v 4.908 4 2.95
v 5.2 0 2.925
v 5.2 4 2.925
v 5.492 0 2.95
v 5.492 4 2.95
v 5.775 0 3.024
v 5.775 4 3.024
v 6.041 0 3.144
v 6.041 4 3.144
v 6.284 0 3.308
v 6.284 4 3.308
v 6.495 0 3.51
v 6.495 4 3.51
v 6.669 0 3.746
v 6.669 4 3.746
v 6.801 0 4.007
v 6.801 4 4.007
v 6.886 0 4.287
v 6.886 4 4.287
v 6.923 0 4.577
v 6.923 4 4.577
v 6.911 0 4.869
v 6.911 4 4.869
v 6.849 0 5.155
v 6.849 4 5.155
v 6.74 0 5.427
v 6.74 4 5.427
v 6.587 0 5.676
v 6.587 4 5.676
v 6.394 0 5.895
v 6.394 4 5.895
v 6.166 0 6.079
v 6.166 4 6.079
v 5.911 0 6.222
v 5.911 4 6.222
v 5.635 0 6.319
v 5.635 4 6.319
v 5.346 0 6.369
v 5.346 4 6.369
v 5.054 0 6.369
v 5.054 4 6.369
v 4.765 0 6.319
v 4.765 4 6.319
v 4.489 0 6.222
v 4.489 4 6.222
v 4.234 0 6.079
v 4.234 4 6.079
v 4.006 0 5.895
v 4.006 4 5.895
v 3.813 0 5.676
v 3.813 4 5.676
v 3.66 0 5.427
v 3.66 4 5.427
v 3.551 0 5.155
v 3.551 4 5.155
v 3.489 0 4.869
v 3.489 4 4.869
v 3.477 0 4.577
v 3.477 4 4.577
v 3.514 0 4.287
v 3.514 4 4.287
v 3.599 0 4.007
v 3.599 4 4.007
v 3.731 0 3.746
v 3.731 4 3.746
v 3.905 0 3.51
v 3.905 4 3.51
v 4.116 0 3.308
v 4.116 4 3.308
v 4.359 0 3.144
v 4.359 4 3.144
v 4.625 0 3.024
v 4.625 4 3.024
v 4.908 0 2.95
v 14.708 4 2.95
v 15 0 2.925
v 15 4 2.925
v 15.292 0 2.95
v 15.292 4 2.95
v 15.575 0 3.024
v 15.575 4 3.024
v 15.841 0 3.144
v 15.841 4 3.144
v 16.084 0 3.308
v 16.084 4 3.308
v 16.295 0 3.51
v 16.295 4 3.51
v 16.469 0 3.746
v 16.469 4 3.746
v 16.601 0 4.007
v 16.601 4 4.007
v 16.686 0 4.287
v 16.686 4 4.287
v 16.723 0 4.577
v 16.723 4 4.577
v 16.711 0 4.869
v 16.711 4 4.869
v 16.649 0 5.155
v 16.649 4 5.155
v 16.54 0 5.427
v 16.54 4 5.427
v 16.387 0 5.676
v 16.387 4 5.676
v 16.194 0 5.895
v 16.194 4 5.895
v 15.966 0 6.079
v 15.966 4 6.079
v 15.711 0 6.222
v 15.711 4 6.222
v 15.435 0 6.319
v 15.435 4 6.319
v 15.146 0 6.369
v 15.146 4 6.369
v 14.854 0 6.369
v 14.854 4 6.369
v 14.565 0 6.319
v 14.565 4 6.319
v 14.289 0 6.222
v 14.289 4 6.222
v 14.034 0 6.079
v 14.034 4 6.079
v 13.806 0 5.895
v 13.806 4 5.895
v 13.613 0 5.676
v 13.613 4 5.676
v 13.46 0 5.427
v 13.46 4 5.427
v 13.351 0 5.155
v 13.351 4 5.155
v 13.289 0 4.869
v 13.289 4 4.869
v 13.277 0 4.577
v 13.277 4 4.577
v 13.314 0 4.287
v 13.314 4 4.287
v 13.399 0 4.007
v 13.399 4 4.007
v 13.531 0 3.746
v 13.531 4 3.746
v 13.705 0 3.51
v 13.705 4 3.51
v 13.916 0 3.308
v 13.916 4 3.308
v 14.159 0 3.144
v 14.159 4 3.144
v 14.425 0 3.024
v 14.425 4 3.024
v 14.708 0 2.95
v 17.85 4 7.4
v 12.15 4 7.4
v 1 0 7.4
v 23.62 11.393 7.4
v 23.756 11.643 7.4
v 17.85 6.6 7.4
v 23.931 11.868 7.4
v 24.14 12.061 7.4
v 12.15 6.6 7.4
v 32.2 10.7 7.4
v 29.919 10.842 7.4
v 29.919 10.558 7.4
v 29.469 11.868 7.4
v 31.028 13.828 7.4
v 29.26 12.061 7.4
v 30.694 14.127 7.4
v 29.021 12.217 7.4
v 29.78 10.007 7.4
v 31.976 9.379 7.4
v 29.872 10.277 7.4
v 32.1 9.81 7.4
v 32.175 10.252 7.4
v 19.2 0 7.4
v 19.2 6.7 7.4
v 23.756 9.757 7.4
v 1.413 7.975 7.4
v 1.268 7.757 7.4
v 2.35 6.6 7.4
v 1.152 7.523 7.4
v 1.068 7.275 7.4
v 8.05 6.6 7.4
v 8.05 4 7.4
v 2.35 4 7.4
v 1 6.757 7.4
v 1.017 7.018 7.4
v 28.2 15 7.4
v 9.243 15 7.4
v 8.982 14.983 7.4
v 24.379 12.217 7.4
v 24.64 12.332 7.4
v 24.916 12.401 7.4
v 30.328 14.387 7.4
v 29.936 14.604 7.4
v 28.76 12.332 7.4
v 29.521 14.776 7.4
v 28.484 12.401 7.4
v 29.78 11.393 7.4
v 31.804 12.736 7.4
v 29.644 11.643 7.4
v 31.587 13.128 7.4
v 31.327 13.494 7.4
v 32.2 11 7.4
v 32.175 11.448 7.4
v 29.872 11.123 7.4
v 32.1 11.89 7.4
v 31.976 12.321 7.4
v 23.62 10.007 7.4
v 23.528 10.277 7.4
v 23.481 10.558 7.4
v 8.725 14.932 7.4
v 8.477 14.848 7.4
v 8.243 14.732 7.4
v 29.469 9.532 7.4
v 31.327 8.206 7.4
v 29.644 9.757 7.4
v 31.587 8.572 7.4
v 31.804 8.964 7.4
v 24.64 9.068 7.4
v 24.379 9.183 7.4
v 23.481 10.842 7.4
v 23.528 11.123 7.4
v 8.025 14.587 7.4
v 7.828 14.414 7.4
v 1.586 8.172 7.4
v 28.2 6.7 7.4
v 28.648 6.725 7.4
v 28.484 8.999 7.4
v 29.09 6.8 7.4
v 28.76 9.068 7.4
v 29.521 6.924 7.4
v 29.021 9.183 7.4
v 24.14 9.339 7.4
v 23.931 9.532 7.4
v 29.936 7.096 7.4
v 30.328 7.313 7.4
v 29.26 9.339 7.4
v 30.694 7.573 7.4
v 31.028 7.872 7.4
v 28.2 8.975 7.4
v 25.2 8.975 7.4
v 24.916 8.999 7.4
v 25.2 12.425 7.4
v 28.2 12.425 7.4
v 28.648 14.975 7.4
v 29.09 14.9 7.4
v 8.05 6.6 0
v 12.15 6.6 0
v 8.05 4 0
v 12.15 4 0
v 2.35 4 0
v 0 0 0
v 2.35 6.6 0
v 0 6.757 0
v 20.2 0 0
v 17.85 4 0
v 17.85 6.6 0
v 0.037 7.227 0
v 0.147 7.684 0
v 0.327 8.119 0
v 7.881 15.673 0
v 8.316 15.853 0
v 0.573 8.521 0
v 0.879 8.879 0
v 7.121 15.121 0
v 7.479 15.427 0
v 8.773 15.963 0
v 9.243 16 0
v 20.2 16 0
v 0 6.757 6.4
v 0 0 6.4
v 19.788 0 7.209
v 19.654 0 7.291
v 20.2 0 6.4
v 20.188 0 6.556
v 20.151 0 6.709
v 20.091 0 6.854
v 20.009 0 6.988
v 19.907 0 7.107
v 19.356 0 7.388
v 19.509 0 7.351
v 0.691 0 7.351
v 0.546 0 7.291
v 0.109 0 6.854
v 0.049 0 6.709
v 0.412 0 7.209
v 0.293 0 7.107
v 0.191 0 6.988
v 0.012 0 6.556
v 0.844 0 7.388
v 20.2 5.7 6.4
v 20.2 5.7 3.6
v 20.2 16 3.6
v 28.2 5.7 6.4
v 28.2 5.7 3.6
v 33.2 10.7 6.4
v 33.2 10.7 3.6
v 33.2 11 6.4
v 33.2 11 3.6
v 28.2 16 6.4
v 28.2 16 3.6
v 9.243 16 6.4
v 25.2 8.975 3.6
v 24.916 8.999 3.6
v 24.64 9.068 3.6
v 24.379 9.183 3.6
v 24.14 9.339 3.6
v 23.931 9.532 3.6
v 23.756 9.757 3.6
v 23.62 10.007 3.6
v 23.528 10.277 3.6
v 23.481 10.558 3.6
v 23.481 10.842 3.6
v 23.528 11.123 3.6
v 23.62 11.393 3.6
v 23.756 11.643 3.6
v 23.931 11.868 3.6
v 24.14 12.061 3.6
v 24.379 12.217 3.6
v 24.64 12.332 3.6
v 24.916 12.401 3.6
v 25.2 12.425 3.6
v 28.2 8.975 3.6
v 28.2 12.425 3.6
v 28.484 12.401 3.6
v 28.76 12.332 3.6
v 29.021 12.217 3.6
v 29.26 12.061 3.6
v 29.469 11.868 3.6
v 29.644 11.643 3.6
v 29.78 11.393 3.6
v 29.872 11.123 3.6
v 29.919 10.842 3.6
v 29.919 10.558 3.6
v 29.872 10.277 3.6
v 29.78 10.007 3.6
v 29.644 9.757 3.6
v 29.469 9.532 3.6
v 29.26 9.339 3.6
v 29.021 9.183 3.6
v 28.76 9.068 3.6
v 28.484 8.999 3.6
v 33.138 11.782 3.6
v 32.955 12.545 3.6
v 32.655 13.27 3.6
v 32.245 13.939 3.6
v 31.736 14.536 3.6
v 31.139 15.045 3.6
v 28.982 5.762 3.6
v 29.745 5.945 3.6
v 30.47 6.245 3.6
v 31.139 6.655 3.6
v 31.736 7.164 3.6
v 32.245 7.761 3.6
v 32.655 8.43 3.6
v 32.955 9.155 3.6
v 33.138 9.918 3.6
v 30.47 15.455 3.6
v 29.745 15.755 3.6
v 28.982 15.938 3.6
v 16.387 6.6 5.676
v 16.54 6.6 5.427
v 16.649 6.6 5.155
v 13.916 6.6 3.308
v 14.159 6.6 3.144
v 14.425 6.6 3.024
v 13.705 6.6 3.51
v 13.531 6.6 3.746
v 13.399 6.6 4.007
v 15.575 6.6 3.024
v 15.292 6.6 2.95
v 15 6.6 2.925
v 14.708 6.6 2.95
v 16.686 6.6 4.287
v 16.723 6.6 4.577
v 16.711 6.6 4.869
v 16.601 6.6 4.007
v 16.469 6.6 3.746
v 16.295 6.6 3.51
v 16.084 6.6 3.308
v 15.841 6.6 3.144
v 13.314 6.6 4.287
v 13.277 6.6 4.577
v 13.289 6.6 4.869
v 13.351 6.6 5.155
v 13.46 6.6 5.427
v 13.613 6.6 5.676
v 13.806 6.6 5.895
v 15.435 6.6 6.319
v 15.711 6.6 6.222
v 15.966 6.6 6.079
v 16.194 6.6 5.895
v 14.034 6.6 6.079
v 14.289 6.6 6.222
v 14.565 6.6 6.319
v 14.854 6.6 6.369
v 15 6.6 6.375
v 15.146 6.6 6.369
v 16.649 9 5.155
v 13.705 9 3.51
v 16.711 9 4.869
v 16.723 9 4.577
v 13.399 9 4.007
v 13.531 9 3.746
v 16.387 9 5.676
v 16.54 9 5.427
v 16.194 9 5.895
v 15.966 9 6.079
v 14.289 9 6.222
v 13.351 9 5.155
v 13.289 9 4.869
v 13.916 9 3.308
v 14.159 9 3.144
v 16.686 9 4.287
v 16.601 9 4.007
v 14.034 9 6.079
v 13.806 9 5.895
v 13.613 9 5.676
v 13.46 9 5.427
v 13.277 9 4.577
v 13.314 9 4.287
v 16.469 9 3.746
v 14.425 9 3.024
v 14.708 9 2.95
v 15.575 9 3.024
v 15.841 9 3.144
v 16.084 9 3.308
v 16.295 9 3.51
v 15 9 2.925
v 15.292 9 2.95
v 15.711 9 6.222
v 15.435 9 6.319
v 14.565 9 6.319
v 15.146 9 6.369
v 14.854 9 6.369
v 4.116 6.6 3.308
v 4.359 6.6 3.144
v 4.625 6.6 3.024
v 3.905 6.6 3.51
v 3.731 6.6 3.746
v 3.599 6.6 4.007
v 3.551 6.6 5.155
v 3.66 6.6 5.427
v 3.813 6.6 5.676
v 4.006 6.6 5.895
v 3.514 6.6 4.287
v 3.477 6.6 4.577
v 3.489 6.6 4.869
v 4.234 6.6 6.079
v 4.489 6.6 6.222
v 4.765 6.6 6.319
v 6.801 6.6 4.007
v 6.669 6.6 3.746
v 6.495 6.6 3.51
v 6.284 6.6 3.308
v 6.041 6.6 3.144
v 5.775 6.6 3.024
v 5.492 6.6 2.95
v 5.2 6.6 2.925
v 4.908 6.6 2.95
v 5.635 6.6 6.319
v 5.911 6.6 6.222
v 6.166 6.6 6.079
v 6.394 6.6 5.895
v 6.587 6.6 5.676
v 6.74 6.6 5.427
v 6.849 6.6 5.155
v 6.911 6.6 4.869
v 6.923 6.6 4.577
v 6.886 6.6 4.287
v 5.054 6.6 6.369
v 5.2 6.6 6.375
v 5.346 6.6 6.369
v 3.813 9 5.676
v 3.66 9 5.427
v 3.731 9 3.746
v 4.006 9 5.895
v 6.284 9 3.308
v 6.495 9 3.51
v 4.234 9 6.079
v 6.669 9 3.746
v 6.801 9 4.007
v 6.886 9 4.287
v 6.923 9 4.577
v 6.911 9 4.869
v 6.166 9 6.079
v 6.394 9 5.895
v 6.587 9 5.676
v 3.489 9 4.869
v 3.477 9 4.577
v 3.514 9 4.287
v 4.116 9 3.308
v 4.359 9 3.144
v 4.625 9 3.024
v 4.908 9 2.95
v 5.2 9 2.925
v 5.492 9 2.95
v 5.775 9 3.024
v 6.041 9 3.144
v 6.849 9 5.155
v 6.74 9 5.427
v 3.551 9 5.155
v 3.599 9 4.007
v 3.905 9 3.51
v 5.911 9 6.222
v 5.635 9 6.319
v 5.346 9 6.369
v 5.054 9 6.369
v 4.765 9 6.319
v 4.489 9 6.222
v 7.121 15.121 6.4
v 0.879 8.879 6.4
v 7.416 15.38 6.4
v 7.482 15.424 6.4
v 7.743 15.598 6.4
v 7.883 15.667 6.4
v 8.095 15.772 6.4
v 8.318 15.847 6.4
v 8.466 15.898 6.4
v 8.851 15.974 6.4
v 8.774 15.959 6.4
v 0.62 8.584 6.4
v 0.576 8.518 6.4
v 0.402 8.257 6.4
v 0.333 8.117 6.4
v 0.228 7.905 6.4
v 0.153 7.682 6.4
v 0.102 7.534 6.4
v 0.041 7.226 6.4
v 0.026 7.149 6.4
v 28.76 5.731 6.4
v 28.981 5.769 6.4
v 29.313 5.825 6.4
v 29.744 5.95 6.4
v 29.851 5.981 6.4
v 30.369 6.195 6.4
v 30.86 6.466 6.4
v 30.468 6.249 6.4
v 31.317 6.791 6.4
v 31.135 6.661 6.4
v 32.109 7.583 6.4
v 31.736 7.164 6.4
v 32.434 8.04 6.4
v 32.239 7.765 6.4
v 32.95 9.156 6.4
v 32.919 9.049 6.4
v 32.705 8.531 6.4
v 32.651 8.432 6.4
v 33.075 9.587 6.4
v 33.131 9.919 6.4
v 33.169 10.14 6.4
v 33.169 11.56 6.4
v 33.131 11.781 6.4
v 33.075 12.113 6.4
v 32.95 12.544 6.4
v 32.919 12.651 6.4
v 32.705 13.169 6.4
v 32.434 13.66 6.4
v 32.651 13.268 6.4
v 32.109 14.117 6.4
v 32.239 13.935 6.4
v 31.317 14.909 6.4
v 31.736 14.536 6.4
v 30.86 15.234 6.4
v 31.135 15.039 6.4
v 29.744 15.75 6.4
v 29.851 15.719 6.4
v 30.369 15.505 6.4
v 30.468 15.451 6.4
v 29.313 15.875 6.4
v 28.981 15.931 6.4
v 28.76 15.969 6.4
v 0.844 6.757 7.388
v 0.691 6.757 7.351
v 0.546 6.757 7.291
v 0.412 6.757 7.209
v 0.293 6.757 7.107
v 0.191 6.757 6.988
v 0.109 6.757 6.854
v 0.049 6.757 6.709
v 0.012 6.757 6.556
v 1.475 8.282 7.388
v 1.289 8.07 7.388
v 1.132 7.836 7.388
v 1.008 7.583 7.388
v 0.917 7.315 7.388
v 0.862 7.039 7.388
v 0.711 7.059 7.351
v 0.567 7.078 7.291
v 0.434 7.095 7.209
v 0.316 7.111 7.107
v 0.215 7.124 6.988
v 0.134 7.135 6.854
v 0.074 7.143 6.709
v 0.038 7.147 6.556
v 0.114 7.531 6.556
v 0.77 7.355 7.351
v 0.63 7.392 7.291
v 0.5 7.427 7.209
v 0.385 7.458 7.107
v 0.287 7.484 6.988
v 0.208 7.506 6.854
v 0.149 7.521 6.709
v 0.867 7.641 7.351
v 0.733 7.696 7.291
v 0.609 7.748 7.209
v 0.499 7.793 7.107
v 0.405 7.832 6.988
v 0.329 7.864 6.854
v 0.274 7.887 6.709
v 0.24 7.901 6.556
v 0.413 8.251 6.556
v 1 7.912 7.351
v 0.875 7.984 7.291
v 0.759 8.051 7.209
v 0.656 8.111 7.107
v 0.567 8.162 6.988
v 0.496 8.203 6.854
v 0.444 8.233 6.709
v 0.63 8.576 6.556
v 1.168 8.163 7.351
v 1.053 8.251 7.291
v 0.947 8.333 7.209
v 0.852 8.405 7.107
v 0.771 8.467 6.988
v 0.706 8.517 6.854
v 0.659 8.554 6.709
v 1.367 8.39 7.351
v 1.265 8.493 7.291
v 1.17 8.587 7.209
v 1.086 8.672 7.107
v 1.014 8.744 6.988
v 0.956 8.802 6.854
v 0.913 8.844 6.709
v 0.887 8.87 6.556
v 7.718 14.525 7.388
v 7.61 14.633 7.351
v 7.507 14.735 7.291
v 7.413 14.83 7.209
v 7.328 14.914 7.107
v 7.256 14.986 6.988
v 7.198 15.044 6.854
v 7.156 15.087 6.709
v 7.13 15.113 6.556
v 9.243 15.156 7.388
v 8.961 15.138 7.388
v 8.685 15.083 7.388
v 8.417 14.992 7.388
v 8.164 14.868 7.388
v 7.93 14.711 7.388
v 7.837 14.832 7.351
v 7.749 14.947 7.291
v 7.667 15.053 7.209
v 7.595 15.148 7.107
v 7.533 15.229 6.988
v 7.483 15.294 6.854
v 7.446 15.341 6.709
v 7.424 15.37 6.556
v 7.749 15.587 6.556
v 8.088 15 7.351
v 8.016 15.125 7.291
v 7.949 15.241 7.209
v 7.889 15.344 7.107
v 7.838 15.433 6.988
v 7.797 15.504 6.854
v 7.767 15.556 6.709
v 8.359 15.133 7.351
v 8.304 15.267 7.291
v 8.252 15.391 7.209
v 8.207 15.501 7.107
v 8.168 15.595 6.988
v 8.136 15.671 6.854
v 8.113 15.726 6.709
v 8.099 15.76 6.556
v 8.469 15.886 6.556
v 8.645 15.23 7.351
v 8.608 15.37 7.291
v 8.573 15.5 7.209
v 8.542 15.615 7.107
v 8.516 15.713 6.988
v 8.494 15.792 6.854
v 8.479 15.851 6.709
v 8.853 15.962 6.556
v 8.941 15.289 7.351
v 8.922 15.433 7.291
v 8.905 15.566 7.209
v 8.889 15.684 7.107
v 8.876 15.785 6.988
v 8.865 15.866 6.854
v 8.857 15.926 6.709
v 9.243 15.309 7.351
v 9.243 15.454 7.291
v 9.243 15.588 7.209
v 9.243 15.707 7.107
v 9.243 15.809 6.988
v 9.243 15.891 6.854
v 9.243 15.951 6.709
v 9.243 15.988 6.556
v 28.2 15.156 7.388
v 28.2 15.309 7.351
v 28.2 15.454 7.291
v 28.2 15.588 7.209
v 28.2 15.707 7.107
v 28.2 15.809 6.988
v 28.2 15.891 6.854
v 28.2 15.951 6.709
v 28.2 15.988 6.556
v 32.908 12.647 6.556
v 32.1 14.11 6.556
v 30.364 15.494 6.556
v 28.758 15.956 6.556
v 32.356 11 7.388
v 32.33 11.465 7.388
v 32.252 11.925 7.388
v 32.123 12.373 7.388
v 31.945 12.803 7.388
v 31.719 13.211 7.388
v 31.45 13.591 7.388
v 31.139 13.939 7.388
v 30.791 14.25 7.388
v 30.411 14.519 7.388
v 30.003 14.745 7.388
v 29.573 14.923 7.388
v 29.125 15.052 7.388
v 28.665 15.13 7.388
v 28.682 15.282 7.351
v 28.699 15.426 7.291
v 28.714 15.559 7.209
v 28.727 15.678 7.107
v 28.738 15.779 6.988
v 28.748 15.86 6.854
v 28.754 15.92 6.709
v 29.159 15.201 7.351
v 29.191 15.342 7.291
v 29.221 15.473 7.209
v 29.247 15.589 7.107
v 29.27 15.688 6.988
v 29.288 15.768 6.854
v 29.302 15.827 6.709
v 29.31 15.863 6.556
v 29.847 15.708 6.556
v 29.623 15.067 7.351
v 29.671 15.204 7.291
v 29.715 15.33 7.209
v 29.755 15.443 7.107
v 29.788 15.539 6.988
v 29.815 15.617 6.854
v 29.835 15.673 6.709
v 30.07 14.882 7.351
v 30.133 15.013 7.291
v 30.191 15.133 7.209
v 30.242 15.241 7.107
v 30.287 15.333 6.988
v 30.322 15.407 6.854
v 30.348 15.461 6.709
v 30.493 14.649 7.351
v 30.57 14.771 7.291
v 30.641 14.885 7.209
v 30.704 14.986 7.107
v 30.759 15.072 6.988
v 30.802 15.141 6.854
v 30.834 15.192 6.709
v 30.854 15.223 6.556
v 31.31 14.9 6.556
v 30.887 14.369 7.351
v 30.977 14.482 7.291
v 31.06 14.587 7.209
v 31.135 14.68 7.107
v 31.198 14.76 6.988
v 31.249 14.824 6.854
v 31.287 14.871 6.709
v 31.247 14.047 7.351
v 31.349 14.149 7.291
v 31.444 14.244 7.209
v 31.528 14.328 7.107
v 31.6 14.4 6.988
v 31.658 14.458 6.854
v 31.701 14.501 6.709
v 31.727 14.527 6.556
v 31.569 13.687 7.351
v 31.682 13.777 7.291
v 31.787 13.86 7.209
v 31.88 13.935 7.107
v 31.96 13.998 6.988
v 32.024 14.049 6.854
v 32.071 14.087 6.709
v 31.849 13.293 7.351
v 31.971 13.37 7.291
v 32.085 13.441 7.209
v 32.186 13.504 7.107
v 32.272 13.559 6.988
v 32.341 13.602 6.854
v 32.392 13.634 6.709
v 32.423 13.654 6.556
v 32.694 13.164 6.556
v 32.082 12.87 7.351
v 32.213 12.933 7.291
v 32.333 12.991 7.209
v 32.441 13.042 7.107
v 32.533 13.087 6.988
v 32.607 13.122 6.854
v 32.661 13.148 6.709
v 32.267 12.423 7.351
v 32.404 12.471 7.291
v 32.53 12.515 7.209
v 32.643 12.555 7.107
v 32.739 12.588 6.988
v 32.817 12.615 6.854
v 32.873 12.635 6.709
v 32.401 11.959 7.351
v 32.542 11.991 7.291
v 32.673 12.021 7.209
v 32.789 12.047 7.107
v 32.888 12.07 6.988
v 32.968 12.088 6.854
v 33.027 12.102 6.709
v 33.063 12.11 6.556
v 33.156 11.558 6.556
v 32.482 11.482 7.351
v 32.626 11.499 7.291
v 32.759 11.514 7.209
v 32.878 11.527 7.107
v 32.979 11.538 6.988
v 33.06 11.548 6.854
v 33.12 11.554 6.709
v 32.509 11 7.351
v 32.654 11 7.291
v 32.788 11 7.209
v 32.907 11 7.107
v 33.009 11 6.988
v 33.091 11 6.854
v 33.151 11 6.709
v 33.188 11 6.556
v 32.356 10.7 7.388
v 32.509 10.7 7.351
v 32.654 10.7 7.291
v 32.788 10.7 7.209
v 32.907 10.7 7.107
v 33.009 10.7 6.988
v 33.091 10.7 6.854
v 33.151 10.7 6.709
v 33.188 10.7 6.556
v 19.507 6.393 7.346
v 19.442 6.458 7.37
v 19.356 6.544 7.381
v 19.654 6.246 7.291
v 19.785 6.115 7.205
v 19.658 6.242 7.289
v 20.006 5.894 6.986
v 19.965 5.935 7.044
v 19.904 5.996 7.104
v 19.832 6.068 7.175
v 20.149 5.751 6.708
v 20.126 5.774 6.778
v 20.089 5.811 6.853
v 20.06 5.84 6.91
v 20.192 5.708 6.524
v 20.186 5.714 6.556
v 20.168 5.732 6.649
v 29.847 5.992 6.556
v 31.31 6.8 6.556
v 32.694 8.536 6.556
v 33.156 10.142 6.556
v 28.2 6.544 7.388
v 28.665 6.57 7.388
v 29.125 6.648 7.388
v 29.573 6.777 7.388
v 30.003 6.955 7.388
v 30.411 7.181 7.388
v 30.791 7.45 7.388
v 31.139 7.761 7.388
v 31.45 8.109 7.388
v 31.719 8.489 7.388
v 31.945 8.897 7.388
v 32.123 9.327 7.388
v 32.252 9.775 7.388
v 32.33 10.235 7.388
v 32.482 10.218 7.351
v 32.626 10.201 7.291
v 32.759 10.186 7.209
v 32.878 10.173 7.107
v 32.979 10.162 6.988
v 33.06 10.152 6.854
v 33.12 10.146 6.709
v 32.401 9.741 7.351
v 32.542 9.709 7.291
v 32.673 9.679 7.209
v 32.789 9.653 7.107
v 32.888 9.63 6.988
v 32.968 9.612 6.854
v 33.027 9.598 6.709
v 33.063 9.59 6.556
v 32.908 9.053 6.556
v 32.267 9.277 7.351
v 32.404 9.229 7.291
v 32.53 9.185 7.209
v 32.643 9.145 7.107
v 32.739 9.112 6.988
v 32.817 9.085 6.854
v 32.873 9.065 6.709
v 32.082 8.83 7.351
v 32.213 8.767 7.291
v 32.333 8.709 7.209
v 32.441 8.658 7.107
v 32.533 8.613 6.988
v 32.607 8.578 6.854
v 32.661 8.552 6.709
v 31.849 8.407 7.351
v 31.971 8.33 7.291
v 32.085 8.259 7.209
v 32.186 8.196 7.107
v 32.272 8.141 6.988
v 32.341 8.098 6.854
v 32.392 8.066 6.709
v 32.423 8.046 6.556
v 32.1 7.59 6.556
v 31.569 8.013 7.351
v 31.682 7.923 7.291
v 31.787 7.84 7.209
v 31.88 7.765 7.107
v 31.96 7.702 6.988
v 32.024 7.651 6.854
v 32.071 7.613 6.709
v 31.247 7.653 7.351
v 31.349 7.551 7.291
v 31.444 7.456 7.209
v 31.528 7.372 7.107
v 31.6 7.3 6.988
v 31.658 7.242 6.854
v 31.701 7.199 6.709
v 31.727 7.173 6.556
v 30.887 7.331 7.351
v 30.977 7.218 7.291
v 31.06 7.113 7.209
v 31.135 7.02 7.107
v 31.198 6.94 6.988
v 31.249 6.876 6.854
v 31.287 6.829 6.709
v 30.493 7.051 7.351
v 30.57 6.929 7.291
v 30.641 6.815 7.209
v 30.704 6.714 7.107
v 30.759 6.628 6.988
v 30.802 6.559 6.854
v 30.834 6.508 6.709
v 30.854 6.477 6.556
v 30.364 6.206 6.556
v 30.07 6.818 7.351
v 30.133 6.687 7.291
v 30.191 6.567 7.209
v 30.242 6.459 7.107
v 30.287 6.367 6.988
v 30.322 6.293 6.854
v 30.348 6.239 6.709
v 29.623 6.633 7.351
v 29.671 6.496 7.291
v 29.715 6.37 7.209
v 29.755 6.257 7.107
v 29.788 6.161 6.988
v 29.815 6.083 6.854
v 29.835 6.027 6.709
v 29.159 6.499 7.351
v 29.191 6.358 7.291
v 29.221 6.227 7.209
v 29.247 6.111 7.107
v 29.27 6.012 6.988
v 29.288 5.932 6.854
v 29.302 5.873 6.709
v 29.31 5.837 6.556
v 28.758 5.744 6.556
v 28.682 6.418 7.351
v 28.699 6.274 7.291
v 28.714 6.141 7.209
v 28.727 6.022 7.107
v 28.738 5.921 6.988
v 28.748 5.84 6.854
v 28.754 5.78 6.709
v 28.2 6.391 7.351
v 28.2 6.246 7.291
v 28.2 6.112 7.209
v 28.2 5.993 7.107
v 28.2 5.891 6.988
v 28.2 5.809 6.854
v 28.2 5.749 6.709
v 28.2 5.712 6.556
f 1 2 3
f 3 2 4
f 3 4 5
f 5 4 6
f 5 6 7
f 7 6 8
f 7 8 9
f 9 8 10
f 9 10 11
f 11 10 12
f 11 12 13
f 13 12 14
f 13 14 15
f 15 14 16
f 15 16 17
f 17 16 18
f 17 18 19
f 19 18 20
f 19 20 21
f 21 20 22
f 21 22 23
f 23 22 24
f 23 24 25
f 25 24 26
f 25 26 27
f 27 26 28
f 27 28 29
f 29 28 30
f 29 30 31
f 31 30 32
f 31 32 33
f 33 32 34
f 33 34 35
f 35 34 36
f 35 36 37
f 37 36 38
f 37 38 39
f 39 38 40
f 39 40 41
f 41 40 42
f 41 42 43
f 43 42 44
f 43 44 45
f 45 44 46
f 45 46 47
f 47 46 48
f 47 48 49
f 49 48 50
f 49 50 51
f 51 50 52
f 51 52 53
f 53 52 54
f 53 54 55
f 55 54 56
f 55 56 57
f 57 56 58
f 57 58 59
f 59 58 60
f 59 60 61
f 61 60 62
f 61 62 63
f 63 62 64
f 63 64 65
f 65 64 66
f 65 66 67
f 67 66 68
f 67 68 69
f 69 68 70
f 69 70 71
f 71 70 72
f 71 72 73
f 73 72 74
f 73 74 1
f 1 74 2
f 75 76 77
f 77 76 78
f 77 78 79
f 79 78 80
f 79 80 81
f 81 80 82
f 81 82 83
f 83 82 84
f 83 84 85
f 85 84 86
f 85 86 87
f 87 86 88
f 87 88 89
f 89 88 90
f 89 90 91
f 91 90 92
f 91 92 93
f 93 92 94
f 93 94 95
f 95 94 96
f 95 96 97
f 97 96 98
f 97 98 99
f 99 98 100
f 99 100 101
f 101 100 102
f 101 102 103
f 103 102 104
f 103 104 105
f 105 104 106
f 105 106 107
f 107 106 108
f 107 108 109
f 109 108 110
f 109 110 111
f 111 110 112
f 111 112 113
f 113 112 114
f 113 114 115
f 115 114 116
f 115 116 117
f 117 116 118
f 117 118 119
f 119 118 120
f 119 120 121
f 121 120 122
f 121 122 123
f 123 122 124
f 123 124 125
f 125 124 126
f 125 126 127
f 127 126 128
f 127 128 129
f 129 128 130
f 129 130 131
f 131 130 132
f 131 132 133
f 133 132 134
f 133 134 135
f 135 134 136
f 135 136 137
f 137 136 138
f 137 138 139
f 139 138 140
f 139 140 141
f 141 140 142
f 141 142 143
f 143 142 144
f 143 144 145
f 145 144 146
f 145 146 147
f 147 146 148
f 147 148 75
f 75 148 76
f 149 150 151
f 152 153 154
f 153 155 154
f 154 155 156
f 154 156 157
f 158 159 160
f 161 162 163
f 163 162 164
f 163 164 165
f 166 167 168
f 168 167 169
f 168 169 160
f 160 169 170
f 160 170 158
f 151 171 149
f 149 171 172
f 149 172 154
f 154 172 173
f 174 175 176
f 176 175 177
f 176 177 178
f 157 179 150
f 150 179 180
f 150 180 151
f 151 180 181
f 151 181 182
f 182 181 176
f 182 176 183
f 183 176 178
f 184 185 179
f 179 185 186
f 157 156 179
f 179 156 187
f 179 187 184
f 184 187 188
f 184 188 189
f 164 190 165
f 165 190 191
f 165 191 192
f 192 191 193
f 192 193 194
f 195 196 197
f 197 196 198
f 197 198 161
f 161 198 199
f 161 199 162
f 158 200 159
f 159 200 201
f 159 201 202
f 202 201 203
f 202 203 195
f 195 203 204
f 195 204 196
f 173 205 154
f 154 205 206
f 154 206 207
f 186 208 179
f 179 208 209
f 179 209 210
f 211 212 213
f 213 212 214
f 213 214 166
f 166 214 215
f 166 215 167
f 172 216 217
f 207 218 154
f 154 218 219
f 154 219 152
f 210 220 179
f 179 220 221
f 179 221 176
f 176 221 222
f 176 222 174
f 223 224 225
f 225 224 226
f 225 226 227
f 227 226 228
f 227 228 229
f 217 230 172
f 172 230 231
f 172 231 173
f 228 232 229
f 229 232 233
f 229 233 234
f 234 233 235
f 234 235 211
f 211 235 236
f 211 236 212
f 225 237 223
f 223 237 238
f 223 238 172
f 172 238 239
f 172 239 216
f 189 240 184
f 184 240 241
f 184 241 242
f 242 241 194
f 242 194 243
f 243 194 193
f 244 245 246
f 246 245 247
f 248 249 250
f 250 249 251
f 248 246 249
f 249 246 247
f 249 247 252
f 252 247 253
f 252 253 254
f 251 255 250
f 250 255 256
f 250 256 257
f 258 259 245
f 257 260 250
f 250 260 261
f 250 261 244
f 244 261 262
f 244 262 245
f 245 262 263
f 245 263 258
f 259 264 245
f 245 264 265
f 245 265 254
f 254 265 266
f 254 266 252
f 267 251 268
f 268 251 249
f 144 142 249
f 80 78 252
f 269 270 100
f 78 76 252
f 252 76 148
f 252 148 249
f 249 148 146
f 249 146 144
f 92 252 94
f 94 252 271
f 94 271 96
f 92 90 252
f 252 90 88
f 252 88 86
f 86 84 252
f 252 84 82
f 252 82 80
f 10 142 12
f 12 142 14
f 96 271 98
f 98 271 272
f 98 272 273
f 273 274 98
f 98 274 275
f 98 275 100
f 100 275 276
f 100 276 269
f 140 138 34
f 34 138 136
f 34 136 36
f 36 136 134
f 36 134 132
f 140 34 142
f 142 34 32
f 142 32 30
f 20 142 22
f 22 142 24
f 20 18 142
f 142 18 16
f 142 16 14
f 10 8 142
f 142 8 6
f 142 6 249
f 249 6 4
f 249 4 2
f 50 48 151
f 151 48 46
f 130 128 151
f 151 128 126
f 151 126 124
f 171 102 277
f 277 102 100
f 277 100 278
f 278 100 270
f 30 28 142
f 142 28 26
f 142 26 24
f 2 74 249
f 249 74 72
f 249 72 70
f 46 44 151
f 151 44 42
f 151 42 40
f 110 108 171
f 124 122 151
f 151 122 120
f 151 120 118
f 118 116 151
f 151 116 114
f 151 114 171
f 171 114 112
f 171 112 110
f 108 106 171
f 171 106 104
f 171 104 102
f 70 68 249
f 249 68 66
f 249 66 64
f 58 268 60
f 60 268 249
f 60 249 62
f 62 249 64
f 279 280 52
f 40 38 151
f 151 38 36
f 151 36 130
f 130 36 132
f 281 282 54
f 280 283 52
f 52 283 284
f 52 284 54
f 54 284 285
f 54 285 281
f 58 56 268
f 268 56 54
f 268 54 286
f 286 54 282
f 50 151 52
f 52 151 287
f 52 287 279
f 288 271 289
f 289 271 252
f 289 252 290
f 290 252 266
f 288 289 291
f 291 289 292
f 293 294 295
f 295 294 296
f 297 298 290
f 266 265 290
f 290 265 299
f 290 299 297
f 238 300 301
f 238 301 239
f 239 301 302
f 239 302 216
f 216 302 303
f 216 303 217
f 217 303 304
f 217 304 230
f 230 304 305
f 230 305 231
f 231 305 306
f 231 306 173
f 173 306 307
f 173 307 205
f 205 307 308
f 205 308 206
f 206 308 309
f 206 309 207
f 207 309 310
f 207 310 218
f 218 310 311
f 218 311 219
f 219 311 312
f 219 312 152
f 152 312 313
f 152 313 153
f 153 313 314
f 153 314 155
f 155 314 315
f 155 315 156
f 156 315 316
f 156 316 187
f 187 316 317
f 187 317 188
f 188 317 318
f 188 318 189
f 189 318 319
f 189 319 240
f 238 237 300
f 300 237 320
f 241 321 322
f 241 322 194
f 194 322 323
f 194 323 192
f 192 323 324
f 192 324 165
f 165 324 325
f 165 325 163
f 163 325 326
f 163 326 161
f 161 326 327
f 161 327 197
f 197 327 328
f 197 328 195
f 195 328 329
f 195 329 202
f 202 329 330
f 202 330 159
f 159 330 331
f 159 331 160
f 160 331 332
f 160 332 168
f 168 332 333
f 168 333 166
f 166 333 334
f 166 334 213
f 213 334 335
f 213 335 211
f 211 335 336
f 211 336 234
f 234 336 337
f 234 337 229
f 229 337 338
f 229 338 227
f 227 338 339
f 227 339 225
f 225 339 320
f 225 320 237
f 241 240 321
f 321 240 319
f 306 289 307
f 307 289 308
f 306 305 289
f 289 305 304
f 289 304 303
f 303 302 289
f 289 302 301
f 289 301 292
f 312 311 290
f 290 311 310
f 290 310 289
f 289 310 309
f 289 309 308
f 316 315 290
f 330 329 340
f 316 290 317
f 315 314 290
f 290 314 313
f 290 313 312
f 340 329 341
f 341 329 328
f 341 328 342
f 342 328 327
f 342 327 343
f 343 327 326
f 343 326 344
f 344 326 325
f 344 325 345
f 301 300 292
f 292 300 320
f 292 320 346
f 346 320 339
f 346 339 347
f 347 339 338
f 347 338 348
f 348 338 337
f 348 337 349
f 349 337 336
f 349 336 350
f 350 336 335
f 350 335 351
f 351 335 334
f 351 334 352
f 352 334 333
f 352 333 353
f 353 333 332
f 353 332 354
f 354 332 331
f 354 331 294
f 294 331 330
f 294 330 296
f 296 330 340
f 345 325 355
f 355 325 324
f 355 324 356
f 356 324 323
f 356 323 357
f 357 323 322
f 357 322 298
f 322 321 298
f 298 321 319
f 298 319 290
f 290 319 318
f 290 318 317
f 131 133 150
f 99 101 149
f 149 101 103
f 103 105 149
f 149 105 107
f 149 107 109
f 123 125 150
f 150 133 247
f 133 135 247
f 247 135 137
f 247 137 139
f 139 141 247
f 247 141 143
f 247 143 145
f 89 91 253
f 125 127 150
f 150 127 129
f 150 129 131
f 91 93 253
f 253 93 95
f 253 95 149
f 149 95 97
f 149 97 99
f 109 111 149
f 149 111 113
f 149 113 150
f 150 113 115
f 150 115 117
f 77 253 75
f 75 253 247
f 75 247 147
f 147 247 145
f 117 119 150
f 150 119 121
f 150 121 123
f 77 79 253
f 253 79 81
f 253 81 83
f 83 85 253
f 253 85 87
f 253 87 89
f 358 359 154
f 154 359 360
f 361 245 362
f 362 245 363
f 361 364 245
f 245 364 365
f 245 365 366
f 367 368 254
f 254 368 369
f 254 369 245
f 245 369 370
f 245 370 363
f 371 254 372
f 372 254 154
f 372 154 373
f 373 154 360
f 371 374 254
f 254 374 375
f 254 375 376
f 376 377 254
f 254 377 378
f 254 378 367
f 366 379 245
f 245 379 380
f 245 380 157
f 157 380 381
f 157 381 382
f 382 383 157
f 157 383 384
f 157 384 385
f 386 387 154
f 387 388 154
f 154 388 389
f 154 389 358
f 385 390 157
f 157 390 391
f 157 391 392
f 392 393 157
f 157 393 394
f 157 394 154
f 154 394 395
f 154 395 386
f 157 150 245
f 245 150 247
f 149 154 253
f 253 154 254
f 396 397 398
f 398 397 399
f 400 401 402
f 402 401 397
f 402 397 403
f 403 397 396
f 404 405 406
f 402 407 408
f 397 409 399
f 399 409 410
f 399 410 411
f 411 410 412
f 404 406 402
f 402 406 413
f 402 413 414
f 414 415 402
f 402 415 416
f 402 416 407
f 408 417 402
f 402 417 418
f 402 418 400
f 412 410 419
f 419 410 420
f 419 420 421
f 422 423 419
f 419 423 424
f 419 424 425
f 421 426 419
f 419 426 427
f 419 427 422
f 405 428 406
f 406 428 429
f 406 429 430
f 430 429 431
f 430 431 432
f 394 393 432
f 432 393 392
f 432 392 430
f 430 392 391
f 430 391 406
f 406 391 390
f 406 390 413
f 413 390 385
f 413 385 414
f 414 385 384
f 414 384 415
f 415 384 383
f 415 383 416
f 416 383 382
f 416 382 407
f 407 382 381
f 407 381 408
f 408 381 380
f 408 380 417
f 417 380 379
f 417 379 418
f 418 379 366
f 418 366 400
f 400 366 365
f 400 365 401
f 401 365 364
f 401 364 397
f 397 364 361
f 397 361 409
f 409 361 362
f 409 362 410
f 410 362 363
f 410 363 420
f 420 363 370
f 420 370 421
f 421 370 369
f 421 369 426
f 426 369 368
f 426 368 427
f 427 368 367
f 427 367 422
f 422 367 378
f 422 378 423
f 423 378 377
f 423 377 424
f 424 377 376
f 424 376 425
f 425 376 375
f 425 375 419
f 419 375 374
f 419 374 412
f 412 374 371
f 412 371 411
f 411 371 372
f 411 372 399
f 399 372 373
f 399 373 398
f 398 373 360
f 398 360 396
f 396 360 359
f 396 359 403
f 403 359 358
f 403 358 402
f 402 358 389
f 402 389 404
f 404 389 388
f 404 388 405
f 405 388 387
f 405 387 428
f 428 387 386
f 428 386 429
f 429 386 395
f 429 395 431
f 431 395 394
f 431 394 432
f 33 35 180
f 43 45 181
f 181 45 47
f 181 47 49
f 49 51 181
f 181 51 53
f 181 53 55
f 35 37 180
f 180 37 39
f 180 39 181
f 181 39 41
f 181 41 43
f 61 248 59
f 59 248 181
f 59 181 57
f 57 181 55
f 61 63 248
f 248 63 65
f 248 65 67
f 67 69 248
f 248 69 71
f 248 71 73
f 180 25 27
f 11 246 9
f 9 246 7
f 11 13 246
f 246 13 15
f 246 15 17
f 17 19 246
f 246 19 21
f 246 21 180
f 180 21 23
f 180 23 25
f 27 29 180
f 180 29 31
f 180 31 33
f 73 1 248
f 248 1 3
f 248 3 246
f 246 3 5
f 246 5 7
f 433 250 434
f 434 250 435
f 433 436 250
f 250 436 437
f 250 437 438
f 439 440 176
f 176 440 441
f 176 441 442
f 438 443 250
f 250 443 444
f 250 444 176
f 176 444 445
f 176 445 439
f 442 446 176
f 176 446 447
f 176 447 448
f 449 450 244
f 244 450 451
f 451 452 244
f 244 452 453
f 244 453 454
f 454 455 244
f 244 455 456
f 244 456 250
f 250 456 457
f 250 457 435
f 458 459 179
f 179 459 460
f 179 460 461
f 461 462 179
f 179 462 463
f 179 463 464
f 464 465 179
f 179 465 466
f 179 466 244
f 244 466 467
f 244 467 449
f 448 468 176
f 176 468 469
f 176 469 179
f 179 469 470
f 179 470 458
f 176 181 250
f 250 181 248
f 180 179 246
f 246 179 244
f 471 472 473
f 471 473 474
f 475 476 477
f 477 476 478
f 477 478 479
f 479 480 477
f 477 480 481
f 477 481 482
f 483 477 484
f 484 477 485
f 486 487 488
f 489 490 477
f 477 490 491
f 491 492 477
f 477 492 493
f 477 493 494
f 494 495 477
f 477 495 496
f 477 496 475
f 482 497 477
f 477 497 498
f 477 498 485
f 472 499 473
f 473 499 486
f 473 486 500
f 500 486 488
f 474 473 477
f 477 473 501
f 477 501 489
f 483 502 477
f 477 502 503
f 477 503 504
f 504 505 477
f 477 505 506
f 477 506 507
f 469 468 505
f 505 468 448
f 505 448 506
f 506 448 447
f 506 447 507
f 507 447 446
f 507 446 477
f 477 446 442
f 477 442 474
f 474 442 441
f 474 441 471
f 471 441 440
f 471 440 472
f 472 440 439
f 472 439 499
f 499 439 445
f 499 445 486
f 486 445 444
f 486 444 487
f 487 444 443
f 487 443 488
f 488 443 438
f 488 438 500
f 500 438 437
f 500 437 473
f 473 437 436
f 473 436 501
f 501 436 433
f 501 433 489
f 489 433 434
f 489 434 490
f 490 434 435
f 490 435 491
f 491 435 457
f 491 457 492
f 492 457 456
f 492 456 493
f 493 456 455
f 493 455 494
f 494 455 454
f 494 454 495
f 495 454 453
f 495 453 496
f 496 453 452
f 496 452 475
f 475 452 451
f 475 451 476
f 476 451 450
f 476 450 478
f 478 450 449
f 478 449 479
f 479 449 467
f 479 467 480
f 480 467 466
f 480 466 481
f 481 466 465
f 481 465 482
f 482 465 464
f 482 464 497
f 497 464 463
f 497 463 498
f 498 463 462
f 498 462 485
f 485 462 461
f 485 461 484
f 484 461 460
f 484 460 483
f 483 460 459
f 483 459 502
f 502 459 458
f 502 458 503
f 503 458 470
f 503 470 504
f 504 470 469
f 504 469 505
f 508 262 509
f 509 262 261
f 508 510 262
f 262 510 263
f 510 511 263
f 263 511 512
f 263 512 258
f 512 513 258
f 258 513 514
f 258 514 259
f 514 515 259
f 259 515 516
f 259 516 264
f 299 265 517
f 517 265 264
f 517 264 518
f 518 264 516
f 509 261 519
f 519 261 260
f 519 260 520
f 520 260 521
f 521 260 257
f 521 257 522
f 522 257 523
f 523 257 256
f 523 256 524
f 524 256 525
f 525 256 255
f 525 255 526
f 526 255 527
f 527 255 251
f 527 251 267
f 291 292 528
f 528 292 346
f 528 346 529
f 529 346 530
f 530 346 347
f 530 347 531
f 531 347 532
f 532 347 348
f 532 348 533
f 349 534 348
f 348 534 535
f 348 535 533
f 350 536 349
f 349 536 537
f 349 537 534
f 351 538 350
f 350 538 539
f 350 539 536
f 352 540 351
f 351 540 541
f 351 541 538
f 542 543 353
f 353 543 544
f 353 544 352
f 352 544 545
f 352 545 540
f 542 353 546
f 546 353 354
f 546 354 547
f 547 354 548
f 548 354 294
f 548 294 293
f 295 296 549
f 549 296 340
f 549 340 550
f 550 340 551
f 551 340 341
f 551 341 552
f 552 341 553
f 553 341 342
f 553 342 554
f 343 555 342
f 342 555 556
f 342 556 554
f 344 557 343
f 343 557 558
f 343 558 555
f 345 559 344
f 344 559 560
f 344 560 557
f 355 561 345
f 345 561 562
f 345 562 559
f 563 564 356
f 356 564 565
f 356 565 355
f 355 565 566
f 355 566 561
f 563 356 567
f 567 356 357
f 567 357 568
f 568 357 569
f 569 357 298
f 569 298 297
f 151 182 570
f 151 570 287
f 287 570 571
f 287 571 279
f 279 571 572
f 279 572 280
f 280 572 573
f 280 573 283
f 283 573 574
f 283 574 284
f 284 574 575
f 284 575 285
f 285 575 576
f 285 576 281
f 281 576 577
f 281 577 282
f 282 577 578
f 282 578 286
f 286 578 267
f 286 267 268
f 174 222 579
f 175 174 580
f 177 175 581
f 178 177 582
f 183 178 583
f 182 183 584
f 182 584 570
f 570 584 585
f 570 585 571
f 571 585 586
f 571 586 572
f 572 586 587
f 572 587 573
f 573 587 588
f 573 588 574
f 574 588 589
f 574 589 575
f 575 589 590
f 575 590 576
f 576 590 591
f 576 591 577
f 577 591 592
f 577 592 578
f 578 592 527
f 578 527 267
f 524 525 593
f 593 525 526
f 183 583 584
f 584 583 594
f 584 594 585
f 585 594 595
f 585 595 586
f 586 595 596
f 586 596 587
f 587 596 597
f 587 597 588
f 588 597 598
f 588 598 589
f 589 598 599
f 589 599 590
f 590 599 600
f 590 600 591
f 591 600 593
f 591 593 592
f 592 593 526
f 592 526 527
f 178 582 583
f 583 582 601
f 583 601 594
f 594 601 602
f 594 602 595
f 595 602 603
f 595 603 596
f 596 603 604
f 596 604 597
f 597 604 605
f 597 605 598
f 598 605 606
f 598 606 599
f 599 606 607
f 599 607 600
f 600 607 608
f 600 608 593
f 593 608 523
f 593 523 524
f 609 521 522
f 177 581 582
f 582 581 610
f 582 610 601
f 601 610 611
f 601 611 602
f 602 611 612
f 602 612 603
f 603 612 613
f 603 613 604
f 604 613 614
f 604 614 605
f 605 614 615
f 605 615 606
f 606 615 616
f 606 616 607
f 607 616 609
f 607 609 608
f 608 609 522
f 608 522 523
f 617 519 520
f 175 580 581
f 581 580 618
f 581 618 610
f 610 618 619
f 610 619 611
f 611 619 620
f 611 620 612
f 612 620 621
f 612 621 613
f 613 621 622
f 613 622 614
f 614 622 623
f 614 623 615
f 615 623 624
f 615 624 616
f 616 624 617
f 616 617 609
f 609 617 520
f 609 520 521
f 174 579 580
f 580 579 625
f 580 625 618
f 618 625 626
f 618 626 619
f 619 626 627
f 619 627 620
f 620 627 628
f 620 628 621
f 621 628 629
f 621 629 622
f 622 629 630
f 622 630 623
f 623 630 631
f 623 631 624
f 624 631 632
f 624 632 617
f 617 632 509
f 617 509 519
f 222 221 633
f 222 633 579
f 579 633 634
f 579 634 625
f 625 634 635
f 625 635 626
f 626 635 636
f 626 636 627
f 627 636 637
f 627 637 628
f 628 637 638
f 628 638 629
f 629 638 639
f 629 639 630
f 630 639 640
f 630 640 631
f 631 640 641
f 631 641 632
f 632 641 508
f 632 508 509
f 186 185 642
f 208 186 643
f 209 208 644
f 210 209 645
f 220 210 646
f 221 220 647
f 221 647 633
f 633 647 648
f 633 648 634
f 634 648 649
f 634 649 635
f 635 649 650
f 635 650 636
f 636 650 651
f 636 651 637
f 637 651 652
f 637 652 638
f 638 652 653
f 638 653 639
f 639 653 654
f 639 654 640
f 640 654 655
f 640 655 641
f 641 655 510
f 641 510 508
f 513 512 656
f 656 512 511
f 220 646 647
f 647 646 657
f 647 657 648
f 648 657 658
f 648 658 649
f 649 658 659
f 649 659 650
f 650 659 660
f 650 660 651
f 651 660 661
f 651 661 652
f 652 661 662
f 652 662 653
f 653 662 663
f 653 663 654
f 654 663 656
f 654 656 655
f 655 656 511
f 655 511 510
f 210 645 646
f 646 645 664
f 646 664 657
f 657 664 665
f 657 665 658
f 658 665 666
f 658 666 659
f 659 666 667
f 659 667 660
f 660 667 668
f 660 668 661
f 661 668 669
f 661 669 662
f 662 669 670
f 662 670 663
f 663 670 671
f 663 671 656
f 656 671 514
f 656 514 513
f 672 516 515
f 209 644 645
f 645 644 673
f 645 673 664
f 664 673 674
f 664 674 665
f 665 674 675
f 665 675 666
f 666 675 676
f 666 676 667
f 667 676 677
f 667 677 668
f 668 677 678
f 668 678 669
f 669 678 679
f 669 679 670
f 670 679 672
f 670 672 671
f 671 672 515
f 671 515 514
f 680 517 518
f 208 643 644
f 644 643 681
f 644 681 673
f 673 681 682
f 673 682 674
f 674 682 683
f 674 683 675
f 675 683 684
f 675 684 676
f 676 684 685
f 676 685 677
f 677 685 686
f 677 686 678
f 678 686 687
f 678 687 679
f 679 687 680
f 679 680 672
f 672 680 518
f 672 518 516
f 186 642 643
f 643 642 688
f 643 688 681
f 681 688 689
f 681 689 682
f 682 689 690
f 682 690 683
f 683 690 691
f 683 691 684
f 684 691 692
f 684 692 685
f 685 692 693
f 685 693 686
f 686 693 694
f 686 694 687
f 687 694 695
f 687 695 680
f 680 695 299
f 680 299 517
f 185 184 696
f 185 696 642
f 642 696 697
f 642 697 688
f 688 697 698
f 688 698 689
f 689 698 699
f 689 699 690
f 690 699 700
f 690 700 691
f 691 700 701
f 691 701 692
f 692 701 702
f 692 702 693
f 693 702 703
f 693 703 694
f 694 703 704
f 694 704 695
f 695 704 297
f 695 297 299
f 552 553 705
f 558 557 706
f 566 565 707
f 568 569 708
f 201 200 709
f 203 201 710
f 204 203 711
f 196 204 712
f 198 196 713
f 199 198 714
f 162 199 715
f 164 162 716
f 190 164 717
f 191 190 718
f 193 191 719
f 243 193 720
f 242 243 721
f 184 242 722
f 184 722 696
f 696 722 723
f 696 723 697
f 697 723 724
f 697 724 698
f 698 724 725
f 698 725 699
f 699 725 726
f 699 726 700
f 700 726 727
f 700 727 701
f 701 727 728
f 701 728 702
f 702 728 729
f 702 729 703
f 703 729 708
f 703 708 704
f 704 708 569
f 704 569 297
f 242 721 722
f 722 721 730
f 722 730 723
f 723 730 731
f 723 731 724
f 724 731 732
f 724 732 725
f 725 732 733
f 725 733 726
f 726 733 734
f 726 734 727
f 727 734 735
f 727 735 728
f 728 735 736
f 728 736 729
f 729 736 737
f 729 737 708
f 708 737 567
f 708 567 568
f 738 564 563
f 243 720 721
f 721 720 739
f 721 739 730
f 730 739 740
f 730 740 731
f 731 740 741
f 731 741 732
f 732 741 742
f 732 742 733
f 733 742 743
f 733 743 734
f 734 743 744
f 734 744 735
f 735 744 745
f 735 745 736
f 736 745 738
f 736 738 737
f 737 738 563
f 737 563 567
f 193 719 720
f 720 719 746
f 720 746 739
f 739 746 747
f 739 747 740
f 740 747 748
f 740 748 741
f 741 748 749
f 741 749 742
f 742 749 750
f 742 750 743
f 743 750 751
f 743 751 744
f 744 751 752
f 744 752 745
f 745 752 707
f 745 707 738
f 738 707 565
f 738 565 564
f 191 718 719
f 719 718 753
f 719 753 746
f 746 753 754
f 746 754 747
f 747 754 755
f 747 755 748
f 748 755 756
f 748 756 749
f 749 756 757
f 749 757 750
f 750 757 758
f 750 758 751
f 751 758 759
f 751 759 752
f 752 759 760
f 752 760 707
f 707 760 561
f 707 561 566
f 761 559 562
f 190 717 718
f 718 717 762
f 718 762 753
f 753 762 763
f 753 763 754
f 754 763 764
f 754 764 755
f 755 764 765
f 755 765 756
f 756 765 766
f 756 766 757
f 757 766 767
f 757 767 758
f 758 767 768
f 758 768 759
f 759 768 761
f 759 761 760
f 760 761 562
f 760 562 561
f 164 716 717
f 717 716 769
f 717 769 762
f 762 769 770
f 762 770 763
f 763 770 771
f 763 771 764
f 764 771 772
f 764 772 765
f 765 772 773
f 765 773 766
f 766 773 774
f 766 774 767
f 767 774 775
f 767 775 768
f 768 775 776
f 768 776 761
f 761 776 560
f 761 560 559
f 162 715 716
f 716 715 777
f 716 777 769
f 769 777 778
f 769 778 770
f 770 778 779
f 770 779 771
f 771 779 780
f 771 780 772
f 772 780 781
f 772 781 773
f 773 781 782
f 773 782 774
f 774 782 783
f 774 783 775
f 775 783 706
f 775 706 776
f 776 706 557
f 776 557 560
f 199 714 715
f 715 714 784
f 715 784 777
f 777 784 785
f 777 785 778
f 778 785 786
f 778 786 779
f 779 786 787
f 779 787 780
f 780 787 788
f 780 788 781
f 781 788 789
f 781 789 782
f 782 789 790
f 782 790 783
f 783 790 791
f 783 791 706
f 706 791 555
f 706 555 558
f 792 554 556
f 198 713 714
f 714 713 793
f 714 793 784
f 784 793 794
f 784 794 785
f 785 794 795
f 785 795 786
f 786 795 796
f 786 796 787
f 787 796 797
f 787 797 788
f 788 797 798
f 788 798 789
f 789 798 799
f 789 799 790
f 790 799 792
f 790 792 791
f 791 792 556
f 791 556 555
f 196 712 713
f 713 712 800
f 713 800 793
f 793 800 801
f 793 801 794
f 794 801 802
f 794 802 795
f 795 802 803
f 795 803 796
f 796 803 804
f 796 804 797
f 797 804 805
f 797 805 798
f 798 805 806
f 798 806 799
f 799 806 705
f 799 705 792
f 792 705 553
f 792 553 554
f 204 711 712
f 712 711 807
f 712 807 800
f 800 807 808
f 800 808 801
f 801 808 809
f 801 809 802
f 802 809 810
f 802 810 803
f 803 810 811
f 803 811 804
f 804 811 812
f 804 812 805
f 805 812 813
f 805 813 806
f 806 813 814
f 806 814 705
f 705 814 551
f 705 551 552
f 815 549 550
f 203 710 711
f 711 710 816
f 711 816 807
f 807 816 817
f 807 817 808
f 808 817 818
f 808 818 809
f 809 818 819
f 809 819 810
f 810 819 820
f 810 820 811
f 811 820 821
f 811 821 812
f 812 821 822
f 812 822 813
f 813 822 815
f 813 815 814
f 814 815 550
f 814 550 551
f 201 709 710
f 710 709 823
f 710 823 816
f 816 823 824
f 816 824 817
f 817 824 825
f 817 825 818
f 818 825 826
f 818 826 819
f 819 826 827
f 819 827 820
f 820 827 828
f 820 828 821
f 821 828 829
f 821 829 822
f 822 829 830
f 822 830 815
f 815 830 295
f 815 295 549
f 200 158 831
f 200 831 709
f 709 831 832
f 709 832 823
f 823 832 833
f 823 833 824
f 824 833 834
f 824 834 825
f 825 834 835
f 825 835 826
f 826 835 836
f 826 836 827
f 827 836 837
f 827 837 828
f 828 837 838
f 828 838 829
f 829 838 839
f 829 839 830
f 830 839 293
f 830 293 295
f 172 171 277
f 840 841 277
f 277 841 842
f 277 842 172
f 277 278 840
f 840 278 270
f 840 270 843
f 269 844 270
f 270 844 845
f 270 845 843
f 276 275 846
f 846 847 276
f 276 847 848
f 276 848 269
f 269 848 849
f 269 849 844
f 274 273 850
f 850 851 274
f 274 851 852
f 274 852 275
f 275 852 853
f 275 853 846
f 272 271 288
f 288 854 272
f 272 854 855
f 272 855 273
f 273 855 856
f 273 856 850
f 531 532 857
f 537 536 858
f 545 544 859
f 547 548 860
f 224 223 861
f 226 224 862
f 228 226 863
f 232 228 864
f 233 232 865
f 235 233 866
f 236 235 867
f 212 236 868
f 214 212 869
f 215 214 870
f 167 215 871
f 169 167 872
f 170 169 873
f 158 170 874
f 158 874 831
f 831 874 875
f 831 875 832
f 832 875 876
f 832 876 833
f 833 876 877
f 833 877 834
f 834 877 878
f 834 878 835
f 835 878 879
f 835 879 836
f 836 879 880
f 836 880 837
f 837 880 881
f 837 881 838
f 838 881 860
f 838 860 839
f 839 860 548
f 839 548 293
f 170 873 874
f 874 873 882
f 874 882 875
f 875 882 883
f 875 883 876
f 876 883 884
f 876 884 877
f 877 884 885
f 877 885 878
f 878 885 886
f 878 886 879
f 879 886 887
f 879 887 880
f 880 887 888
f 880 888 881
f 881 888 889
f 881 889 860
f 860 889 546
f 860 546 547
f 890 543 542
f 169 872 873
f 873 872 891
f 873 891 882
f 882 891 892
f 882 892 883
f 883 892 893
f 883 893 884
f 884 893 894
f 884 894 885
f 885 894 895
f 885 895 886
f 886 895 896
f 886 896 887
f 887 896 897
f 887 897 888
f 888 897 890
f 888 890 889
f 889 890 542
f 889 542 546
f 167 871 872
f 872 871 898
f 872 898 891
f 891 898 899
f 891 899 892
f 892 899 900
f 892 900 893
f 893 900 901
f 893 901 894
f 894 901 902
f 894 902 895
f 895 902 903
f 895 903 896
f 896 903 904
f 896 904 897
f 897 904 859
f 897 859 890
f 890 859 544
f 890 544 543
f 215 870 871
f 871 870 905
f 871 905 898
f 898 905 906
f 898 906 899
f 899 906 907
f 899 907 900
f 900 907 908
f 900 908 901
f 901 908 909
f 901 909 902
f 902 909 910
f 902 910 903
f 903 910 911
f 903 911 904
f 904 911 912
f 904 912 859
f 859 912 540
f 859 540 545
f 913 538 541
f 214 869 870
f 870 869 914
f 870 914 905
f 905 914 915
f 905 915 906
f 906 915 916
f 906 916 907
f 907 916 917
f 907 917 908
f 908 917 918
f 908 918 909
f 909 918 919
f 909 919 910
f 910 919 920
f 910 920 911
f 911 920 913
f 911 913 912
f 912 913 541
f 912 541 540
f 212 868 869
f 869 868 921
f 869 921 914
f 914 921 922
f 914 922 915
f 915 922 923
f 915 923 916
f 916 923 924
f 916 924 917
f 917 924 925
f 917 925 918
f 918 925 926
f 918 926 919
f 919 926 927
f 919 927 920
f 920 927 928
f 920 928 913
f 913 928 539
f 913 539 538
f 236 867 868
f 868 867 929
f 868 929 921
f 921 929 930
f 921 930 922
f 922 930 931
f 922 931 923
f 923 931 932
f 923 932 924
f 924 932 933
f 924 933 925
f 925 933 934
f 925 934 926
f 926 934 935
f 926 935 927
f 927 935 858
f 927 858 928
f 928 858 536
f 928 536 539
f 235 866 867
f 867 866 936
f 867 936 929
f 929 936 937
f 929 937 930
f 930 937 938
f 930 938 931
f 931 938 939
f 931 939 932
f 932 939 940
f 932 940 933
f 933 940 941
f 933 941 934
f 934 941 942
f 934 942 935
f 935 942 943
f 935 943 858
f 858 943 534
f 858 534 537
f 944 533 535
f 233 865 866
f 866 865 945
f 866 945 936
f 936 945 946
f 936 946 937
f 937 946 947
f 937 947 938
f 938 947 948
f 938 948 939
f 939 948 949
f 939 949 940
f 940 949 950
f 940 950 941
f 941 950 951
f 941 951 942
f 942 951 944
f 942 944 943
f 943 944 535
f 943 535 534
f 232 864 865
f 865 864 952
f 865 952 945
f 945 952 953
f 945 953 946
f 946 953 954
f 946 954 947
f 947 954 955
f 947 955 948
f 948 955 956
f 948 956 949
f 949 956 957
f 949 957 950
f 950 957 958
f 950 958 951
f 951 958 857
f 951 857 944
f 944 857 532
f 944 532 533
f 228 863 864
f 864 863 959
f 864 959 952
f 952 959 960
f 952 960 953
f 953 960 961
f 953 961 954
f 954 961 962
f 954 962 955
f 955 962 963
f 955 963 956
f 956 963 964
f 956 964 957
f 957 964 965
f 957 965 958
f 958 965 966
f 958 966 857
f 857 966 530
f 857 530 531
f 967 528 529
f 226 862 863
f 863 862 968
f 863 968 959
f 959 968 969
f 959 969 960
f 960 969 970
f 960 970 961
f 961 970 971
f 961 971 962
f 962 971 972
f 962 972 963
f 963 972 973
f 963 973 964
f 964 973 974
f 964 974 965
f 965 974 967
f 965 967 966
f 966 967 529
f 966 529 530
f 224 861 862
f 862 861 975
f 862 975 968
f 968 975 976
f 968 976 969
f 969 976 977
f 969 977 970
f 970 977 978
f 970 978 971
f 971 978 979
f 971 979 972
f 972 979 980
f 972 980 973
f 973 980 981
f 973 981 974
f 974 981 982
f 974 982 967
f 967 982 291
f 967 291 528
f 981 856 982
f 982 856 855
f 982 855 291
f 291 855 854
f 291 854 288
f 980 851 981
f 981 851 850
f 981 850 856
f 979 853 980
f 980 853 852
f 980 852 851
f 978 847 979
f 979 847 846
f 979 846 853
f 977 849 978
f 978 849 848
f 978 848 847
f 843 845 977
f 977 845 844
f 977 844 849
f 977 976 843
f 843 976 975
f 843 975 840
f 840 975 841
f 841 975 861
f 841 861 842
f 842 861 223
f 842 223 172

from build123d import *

# Parameters (mm, degrees)
BOSS_EXTRUDE1_DEPTH = 7.4
CUT_EXTRUDE5_REACH  = 39.59
SKETCH2_W           = 3.6
SKETCH2_H           = 10.3
SKETCH4_R           = 1.725
CUT_EXTRUDE3_DEPTH  = 9
SKETCH3_W           = 5.7
SKETCH3_H           = 2.6
CUT_EXTRUDE4_DEPTH  = 38.589892258
CHAMFER1_SIZE       = 8
FILLET4_R           = 3
FILLET5_R           = 5
FILLET6_R           = 1


with BuildPart() as part:
    # Sketch1 → Boss-Extrude1 (new body)
    with BuildSketch(Plane.XY):
        Polygon((0, 0), (20.2, 0), (20.2, 5.7), (33.2, 5.7), (33.2, 16), (0, 16), align=None)
        with BuildLine():
            Line((25.2, 12.425), (28.2, 12.425))
            ThreePointArc((28.2, 12.425), (29.925, 10.7), (28.2, 8.975))
            Line((28.2, 8.975), (25.2, 8.975))
            ThreePointArc((25.2, 8.975), (23.475, 10.7), (25.2, 12.425))
        make_face(mode=Mode.SUBTRACT)
    extrude(amount=BOSS_EXTRUDE1_DEPTH)

    # Cut-Extrude5: up to this face of the body (flat: up to its plane)
    cut_extrude5_end = Plane(part.part.faces().sort_by_distance((20.2, 2.85, 3.7))[0])
    # Sketch2 → Cut-Extrude5 (cut, up to the picked face)
    with BuildSketch(Plane(origin=(33.2, 0, 0), x_dir=(0, 0, -1), z_dir=(1, 0, 0)), mode=Mode.PRIVATE) as cut_extrude5_sk1:
        with Locations((-1.8, 10.85)):
            Rectangle(SKETCH2_W, SKETCH2_H)
    cut_extrude5_tool1 = split(extrude(cut_extrude5_sk1.sketch, amount=-CUT_EXTRUDE5_REACH, mode=Mode.PRIVATE), bisect_by=cut_extrude5_end, keep=Keep.BOTH, mode=Mode.PRIVATE)
    add(cut_extrude5_tool1.solids().sort_by(Axis((33.2, 10.85, 1.8), (-1, 0, 0)))[0], mode=Mode.SUBTRACT)

    # Sketch4 → Cut-Extrude3 (cut)
    with BuildSketch(Plane.XZ):
        with Locations(Location((15, 4.65, 0), (0, 0, 270))):
            Circle(SKETCH4_R)
        with Locations(Location((5.2, 4.65, 0), (0, 0, 270))):
            Circle(SKETCH4_R)
    extrude(amount=-CUT_EXTRUDE3_DEPTH, mode=Mode.SUBTRACT)

    # Sketch3 → Cut-Extrude4 (cut, through all)
    with BuildSketch(Plane(origin=(0, 0, 0), x_dir=(-1, 0, 0), z_dir=(0, 0, -1))):
        with Locations((-15, 5.3)):
            Rectangle(SKETCH3_W, SKETCH3_H)
        with Locations((-5.2, 5.3)):
            Rectangle(SKETCH3_W, SKETCH3_H)
    extrude(amount=-CUT_EXTRUDE4_DEPTH, mode=Mode.SUBTRACT)

    # Chamfer1
    chamfer1_edges = [part.edges().sort_by_distance(p)[0] for p in [
        (0, 16, 3.7),
    ]]
    chamfer(chamfer1_edges, length=CHAMFER1_SIZE)

    # Fillet4
    fillet4_edges = [part.edges().sort_by_distance(p)[0] for p in [
        (8, 16, 3.7),
        (0, 8, 3.7),
    ]]
    fillet(fillet4_edges, radius=FILLET4_R)

    # Fillet5
    fillet5_edges = [part.edges().sort_by_distance(p)[0] for p in [
        (33.2, 16, 5.5),
        (33.2, 5.7, 5.5),
    ]]
    fillet(fillet5_edges, radius=FILLET5_R)

    # Fillet6
    fillet6_edges = [part.edges().sort_by_distance(p)[0] for p in [
        (20.2, 2.85, 7.4),
        (4, 12, 7.4),
        (0, 3.378679656, 7.4),
        (0.228361402, 7.90540961, 7.4),
        (8.09459039, 15.771638598, 7.4),
        (33.2, 10.85, 7.4),
        (18.721320344, 16, 7.4),
        (31.735533906, 14.535533906, 7.4),
        (31.735533906, 7.164466094, 7.4),
        (24.2, 5.7, 7.4),
    ]]
    fillet(fillet6_edges, radius=FILLET6_R)


solid = part.part
